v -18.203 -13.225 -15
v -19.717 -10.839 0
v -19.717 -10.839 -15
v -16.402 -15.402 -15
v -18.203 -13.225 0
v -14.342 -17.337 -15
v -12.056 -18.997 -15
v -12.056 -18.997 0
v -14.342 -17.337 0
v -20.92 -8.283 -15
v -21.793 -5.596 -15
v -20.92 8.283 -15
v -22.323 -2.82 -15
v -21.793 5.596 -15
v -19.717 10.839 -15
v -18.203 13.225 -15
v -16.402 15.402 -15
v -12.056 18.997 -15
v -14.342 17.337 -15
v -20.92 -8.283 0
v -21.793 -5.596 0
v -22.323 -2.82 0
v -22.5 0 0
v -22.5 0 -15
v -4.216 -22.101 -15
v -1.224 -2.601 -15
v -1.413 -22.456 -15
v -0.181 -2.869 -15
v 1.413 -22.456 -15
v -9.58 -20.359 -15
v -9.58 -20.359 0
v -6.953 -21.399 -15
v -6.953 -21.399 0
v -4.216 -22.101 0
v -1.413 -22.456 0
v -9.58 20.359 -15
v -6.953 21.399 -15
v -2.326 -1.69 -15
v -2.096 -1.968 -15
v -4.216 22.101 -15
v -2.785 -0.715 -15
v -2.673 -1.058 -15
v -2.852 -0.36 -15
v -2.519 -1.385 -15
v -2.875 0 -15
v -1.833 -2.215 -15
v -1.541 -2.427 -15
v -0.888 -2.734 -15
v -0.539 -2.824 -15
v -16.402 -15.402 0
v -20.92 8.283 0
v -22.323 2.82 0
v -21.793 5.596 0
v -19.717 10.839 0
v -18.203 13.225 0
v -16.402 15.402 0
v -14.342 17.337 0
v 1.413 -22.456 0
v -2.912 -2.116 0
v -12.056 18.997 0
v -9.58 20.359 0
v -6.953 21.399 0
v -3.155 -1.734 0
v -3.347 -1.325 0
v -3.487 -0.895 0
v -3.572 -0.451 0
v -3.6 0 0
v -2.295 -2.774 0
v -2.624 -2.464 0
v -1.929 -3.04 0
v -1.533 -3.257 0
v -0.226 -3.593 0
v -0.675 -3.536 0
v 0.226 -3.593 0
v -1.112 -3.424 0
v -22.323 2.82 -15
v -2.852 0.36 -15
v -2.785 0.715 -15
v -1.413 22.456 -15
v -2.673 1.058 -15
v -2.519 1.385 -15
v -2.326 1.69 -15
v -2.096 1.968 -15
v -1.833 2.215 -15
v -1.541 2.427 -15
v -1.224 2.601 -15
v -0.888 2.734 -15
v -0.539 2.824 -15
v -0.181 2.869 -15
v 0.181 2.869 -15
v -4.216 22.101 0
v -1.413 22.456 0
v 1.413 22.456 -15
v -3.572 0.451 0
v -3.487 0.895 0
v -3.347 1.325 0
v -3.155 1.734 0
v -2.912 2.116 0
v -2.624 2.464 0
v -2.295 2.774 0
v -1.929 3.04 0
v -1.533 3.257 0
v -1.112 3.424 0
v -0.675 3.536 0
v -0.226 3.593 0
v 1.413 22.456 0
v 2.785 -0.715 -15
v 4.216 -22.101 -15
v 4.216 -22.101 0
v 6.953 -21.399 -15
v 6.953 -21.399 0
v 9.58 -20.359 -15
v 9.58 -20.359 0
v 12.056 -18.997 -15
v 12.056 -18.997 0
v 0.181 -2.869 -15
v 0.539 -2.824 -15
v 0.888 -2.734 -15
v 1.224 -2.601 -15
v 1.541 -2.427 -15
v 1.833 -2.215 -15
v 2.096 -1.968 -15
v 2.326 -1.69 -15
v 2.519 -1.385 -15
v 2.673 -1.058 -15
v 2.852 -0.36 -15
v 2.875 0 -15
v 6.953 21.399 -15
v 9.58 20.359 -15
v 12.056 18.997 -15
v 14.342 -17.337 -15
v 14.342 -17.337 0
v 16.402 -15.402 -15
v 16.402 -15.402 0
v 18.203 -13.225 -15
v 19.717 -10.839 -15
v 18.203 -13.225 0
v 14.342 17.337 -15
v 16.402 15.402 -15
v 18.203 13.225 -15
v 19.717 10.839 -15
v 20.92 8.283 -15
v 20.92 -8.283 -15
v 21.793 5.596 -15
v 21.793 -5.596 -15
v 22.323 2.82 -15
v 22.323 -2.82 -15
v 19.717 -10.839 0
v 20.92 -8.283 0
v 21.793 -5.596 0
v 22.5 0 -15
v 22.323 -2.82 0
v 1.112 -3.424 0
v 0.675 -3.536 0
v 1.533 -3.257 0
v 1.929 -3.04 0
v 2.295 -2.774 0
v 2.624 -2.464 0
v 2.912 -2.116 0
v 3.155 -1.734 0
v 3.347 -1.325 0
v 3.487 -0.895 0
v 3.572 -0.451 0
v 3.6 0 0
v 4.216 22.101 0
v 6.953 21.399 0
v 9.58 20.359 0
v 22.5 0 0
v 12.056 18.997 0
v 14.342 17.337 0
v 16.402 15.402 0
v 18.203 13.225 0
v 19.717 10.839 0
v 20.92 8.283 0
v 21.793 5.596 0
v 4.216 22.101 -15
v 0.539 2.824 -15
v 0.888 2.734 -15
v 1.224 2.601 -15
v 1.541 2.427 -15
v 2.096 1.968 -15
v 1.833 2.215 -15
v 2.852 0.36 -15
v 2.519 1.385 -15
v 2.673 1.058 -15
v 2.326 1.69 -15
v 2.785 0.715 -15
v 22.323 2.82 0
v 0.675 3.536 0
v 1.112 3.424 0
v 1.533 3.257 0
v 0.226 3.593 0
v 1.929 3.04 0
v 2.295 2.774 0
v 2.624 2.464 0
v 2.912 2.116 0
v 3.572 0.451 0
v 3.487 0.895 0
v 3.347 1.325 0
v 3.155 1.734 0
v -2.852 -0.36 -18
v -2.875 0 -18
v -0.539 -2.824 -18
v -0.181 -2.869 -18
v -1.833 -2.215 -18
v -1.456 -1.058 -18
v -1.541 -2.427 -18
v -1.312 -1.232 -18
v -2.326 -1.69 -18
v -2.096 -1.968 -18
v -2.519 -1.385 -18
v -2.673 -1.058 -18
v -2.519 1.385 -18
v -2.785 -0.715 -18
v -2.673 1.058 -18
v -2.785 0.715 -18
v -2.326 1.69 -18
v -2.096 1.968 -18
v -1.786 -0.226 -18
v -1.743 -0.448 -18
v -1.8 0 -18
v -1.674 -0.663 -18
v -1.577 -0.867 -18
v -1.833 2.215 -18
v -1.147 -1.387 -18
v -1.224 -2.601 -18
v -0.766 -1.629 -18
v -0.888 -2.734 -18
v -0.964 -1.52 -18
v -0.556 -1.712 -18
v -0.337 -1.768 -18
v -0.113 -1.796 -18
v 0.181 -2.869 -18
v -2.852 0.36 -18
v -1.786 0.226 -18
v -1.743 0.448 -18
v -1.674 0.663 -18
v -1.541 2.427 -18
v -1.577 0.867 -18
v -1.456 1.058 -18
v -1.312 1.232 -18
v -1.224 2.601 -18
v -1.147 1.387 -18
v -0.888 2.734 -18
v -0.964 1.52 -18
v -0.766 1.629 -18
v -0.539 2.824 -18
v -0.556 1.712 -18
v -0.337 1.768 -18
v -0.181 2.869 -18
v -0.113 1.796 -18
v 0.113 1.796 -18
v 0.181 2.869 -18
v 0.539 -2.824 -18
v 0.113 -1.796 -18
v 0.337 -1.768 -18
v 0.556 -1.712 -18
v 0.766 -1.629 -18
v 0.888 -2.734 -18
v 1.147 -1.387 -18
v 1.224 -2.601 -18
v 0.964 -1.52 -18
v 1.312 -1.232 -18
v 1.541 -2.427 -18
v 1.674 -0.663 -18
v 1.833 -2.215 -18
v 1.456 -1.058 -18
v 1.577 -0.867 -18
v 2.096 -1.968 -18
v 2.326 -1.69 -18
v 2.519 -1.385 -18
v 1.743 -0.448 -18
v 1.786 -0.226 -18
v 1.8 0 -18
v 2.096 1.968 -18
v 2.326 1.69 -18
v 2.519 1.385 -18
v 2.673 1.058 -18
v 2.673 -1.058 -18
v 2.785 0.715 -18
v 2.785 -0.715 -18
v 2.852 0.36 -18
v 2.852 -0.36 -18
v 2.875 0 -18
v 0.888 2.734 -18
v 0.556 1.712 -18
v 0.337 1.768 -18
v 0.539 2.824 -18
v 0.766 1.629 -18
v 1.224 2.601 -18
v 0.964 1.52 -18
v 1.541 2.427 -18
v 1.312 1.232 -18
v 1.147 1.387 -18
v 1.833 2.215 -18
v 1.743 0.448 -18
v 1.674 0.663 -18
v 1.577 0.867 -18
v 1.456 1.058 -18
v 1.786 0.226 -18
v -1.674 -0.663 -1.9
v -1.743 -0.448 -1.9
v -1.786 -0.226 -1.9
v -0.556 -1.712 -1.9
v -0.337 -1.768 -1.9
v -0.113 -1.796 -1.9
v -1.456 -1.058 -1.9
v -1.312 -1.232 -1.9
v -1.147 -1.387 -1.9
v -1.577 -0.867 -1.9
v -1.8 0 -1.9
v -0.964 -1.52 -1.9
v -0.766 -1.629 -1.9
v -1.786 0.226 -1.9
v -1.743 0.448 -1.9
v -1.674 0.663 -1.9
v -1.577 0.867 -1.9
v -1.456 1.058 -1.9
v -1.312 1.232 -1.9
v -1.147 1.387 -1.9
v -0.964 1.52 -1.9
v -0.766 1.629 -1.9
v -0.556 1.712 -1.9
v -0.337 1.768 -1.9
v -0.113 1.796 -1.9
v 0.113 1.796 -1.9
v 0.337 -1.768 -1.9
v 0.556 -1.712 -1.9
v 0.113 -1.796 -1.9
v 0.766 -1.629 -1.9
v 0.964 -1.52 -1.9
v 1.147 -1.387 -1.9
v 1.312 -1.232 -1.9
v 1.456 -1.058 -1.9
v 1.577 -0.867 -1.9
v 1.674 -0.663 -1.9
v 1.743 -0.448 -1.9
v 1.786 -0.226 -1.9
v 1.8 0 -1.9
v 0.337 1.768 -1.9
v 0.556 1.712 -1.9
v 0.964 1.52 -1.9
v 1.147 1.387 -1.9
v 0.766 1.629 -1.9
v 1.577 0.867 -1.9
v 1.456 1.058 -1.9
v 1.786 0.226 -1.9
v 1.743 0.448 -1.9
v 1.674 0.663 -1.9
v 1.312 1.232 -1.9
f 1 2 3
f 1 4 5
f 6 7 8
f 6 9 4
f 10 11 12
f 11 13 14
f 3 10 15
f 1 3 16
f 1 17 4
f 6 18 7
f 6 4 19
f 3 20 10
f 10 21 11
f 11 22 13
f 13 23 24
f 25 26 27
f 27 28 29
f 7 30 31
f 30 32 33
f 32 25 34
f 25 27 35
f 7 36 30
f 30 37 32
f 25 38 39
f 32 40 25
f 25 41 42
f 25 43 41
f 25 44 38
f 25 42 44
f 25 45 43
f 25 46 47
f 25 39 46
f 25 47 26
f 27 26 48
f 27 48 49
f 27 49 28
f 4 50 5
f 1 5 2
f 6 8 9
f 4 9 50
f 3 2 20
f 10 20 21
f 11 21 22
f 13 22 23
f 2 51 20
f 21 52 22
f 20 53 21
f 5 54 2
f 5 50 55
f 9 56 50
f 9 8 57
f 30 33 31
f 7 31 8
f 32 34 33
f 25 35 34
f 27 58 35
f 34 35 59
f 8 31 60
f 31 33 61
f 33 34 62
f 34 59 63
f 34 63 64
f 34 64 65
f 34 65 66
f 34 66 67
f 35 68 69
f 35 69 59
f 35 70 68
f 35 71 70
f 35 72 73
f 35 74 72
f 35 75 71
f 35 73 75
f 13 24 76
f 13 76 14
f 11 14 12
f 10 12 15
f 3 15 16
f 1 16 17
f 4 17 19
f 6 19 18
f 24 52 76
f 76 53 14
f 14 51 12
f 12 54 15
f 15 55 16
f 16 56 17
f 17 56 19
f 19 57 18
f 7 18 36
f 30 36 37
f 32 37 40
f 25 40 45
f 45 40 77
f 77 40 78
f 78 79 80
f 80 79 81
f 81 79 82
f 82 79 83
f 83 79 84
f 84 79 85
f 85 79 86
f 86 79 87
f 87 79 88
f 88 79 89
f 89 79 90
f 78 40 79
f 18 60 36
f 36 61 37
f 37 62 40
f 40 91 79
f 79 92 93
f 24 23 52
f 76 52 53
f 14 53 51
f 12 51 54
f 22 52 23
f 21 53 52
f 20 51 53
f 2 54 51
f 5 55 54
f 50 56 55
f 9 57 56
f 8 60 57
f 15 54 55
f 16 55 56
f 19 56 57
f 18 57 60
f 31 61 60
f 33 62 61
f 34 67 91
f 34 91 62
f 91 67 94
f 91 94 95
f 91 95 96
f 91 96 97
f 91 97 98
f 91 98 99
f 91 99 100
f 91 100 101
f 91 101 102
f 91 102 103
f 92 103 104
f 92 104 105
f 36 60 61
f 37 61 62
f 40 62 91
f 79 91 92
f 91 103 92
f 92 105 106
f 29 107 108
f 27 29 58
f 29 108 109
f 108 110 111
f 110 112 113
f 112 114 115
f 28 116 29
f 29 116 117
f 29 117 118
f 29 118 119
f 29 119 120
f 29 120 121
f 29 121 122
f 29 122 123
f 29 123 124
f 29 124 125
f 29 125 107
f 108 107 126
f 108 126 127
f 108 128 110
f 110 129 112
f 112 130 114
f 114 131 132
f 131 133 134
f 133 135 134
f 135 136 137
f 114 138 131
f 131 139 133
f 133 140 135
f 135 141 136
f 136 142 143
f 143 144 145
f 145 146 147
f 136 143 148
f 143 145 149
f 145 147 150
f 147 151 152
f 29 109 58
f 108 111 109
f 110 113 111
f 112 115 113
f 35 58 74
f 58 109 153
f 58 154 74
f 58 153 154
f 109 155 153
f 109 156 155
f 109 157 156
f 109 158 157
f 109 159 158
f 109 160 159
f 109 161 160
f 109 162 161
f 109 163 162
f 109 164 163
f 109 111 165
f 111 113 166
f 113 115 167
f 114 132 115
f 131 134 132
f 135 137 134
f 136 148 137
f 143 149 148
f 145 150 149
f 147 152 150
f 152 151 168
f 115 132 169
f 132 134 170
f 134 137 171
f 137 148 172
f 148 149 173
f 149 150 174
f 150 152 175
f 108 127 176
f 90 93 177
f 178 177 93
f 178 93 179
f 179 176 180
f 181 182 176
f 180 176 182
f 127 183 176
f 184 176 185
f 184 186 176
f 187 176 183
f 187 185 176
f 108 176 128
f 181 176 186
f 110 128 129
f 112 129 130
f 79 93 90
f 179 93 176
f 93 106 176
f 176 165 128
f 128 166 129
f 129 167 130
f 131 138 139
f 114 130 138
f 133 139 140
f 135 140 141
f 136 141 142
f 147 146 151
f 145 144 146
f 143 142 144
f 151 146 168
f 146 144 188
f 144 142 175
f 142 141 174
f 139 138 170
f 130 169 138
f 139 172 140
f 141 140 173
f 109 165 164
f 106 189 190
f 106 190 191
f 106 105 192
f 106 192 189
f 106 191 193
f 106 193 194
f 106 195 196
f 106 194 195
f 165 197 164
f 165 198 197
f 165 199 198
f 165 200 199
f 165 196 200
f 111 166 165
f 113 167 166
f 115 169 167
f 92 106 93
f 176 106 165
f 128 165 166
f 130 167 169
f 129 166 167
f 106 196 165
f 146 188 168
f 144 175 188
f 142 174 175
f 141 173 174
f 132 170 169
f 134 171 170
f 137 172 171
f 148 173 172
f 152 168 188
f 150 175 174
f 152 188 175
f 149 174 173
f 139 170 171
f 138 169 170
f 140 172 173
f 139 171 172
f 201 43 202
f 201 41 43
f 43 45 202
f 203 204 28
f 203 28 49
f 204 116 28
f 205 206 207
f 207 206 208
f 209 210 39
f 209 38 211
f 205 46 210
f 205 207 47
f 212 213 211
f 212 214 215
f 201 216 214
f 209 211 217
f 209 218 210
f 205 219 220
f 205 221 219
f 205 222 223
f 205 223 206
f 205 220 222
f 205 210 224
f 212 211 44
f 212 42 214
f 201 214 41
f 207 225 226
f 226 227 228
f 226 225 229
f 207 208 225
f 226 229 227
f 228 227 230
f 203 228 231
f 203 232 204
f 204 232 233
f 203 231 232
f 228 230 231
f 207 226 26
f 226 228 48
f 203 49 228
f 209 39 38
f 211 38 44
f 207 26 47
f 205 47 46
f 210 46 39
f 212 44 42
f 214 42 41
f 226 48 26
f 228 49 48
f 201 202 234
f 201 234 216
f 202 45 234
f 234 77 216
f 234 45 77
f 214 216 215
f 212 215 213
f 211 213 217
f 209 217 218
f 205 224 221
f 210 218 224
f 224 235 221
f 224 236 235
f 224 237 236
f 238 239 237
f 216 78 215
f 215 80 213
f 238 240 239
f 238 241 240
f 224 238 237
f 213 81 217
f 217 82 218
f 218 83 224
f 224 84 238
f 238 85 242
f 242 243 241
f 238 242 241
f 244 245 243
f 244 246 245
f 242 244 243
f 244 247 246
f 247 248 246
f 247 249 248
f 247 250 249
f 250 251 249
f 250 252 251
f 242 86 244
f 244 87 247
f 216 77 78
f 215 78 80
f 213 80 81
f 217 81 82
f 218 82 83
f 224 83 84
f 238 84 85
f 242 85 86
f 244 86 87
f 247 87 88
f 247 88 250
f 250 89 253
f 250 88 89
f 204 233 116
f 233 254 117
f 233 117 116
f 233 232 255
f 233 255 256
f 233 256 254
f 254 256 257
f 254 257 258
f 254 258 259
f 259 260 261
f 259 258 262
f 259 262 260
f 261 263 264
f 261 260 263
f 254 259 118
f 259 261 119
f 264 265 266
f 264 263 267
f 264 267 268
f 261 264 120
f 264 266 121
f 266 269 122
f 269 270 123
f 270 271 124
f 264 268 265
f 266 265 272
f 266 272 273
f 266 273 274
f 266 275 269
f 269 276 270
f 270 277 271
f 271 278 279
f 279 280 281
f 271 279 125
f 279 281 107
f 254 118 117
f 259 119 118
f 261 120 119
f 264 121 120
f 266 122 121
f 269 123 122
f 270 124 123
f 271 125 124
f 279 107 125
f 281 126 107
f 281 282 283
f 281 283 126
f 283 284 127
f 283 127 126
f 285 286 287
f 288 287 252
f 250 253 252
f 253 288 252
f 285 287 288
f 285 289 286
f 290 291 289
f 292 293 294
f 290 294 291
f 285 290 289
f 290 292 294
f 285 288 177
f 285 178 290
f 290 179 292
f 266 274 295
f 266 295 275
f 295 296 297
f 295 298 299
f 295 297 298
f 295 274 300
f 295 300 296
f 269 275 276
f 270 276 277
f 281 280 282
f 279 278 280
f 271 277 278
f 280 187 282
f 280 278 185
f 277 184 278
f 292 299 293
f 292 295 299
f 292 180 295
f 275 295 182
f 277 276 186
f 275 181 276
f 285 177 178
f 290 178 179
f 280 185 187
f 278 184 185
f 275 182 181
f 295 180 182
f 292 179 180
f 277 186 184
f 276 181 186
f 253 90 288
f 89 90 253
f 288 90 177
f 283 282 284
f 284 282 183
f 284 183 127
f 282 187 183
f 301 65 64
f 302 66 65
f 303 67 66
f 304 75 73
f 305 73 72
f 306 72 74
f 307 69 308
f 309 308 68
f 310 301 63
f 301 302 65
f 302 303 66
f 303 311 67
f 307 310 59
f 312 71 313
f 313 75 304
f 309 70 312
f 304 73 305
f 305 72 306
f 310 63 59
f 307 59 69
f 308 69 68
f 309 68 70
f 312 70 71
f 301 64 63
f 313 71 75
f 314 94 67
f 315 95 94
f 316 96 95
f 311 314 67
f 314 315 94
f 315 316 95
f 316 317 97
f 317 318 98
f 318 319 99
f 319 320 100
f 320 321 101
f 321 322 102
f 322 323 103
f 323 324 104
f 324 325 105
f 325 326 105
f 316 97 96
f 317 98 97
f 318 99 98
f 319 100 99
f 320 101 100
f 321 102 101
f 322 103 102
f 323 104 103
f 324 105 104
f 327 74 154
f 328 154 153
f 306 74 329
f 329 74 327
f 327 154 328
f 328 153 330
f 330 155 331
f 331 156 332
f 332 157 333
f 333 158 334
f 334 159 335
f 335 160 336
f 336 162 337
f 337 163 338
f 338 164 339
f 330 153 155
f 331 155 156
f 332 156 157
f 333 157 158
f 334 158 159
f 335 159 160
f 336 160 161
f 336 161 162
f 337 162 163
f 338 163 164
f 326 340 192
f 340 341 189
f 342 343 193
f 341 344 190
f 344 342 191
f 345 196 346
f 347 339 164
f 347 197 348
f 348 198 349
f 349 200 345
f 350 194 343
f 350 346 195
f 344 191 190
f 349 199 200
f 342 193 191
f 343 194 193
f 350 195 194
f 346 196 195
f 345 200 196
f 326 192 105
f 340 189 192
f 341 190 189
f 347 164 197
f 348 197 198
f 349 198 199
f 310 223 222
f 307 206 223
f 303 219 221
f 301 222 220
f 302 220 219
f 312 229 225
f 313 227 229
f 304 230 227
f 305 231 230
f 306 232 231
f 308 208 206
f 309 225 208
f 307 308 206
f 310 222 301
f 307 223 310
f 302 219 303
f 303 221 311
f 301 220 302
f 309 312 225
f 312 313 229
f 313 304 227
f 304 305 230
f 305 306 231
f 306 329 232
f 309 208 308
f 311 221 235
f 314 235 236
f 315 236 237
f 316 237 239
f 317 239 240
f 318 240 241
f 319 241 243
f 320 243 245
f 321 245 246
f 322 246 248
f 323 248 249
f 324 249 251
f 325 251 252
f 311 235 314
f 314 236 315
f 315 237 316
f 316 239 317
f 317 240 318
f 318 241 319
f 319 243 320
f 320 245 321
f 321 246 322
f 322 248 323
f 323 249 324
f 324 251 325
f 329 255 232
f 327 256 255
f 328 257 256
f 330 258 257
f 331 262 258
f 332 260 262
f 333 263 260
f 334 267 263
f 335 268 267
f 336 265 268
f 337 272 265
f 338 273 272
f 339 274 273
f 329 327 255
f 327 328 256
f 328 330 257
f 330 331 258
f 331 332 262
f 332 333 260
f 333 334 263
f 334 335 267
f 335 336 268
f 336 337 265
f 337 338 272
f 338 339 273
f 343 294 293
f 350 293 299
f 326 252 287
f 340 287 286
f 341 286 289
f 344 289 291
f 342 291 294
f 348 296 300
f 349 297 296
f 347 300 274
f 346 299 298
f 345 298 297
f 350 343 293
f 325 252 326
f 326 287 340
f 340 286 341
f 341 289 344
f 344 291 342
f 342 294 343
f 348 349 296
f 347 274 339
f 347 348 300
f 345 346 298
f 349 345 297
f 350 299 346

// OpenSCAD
$fn = 50;


difference() {
	union() {
		translate(v = [0, 0, -15.0000000000]) {
			cylinder(h = 15, r = 22.5000000000);
		}
		#translate(v = [0, 0, -18.0000000000]) {
			cylinder(h = 18, r = 2.8750000000);
		}
	}
	union() {
		translate(v = [0, 0, 0]) {
			rotate(a = [0, 0, 0]) {
				difference() {
					union() {
						translate(v = [0, 0, -18.0000000000]) {
							cylinder(h = 18, r = 1.5000000000);
						}
						translate(v = [0, 0, -1.9000000000]) {
							cylinder(h = 1.9000000000, r1 = 1.8000000000, r2 = 3.6000000000);
						}
						translate(v = [0, 0, -18.0000000000]) {
							cylinder(h = 18, r = 1.8000000000);
						}
						translate(v = [0, 0, -18.0000000000]) {
							cylinder(h = 18, r = 1.5000000000);
						}
					}
					union();
				}
			}
		}
	}
}
